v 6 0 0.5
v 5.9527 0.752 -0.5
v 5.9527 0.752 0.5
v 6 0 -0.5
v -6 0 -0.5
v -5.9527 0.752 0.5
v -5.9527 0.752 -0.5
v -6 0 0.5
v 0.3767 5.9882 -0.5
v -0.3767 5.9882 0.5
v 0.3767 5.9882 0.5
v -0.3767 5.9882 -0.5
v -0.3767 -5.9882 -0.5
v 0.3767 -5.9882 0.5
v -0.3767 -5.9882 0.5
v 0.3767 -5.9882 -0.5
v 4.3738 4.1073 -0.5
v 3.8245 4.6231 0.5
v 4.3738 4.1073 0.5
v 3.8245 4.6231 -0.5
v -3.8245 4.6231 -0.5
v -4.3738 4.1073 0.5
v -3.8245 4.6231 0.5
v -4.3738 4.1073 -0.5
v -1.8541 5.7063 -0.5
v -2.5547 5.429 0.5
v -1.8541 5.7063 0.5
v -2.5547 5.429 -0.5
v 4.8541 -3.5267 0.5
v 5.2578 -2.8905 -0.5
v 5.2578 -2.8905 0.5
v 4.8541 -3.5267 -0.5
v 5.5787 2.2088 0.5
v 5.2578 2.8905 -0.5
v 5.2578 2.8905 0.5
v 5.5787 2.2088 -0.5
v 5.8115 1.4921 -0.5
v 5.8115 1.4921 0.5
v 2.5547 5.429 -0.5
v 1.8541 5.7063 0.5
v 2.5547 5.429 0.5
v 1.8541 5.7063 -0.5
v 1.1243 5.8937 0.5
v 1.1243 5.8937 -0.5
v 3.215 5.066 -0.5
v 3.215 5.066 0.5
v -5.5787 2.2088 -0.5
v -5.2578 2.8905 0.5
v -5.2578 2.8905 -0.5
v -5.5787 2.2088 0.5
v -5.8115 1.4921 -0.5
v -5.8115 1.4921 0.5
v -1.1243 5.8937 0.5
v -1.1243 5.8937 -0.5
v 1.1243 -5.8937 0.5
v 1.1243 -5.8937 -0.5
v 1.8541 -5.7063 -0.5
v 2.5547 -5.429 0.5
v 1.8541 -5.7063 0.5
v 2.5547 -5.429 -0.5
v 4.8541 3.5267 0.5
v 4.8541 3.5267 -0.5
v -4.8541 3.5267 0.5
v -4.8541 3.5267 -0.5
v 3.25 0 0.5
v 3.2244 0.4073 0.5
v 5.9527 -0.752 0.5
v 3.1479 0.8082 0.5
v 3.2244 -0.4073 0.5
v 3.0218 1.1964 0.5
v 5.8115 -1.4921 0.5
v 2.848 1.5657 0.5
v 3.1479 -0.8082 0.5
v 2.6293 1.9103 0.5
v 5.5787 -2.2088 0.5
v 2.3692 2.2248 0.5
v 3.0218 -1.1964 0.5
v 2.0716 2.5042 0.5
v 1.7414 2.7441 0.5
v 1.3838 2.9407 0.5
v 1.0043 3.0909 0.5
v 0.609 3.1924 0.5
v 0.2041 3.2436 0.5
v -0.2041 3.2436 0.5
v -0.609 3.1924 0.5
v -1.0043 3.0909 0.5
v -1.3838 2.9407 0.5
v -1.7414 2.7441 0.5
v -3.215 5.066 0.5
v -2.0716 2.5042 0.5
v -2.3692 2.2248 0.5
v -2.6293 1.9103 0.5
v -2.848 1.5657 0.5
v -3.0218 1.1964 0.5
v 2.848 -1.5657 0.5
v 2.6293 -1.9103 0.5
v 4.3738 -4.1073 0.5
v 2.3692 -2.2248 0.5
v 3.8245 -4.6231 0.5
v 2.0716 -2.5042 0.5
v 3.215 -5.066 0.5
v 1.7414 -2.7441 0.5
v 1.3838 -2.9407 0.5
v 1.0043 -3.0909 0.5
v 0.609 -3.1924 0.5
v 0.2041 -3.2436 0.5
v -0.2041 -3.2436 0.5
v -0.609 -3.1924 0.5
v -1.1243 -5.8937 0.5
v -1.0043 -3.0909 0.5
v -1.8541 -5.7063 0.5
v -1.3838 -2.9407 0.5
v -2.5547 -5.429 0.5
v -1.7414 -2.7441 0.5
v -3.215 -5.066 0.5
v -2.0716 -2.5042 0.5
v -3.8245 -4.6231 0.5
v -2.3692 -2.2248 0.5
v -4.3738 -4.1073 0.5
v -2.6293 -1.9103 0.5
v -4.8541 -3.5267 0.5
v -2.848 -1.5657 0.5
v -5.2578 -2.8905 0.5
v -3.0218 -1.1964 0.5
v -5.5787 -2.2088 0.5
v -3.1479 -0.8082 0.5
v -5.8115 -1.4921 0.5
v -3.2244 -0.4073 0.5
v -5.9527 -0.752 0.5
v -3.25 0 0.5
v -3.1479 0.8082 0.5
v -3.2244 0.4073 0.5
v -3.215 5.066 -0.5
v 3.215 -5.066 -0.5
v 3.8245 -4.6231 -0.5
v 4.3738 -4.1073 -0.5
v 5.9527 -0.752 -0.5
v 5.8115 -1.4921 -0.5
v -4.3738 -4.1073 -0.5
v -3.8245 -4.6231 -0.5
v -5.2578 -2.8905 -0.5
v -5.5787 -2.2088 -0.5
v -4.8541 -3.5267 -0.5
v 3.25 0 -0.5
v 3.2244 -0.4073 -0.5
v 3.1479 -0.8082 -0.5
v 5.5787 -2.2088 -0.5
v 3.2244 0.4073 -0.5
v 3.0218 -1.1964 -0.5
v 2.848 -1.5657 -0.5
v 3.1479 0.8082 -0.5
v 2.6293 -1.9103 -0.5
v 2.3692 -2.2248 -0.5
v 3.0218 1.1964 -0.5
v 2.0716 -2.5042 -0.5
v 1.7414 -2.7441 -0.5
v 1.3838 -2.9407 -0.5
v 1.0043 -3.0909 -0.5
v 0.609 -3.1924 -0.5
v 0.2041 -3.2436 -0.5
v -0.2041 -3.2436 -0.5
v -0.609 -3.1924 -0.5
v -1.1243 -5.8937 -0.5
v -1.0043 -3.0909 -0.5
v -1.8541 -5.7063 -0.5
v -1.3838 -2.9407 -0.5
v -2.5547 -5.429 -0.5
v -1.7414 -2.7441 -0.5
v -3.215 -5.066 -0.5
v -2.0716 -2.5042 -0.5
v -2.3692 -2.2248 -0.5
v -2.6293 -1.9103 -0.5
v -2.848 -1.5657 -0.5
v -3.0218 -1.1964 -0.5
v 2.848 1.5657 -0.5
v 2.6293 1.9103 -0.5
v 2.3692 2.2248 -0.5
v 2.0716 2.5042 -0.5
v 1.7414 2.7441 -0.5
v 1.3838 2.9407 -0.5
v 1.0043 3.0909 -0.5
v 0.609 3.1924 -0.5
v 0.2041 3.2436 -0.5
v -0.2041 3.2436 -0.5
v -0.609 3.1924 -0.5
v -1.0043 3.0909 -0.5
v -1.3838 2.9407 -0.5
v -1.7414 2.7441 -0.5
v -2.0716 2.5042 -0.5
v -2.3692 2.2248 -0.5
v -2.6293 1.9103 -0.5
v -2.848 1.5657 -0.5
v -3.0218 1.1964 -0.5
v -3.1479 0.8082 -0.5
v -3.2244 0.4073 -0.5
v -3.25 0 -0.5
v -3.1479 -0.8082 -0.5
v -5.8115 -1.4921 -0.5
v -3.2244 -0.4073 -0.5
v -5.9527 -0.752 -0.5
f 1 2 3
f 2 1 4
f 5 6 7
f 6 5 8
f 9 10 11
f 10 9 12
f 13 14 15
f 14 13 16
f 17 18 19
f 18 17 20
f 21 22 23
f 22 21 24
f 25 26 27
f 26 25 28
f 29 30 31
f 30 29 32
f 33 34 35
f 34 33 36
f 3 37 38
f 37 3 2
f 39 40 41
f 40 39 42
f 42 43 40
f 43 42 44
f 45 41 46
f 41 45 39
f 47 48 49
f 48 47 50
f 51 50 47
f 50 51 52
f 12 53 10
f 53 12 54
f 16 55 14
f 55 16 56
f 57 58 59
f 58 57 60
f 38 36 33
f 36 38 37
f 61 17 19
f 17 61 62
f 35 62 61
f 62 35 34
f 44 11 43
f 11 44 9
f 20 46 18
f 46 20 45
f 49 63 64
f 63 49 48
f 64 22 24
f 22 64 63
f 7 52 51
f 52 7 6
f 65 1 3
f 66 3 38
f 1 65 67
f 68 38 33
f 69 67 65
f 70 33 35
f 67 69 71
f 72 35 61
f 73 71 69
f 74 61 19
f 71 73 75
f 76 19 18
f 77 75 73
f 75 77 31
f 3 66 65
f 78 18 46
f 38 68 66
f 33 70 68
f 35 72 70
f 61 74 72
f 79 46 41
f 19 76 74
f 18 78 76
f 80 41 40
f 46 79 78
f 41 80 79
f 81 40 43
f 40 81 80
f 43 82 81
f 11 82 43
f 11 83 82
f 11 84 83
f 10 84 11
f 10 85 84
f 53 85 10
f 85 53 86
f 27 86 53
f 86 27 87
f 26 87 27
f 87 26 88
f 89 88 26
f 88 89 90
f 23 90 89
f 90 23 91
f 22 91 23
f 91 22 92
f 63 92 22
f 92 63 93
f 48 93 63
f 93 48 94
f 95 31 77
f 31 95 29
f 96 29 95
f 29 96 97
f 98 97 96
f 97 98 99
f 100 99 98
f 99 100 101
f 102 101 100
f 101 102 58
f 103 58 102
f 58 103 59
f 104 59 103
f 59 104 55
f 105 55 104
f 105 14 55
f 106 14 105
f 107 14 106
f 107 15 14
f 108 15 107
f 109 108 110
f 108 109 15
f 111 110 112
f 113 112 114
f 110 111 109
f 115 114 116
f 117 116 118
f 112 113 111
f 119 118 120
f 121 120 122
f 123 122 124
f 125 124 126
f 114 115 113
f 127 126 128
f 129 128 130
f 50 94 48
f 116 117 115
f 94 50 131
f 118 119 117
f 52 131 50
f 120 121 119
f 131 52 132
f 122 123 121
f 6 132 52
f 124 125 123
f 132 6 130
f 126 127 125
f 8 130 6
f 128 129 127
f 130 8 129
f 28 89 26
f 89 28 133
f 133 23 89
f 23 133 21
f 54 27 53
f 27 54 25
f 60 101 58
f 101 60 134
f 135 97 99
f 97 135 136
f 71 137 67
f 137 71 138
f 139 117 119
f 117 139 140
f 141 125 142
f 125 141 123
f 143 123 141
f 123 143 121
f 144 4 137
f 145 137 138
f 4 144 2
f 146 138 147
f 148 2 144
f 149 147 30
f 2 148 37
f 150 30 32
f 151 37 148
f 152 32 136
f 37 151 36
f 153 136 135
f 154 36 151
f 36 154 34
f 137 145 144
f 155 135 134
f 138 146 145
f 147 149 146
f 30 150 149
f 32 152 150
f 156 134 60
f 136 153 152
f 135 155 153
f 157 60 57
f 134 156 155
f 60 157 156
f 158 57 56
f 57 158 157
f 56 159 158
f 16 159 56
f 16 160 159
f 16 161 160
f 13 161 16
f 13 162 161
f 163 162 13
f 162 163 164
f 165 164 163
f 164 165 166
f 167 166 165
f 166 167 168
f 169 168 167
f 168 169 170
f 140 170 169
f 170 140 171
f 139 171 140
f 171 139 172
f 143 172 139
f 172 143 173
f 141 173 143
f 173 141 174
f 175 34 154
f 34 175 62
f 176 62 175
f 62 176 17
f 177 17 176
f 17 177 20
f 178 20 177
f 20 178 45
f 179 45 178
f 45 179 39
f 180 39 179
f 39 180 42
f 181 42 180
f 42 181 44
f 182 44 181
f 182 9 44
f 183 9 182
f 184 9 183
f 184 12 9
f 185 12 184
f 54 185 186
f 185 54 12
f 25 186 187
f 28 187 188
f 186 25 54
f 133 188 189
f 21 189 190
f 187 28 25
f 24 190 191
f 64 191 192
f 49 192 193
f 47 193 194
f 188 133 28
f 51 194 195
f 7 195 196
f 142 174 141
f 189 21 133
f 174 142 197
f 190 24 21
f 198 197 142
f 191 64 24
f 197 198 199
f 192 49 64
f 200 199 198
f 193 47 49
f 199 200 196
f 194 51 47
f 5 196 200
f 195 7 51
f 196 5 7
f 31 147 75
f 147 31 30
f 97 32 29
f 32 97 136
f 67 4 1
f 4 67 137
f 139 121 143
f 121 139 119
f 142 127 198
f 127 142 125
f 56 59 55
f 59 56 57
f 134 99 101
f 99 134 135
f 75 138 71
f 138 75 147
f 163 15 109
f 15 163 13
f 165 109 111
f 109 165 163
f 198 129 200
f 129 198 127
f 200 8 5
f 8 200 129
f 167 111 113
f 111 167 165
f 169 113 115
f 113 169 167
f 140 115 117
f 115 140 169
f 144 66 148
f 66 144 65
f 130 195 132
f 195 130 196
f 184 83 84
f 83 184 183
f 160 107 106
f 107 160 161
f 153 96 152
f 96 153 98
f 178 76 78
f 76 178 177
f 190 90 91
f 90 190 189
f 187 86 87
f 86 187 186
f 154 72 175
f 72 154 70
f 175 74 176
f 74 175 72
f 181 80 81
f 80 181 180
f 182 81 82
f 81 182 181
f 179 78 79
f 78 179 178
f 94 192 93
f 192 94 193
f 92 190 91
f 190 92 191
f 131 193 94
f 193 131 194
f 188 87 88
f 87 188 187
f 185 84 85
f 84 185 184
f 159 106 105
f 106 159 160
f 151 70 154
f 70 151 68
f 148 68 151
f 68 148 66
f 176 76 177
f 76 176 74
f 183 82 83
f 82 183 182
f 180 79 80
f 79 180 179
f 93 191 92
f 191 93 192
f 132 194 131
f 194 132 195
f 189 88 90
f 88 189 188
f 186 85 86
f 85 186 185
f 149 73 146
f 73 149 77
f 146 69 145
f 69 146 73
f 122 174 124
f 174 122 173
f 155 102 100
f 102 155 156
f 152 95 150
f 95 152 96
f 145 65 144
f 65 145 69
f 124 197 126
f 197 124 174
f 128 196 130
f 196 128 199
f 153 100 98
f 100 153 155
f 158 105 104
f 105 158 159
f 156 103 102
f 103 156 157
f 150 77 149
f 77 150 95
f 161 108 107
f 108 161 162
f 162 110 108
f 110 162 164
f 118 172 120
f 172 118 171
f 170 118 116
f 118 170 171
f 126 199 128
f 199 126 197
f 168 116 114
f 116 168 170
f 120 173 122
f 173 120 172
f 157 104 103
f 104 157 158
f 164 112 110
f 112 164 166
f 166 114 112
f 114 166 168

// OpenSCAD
$fn = 50;


difference() {
	union() {
		translate(v = [0, 0, -0.5000000000]) {
			cylinder(h = 1, r = 6.0000000000);
		}
	}
	union() {
		translate(v = [0, 0, -100.0000000000]) {
			cylinder(h = 200, r = 3.2500000000);
		}
	}
}
